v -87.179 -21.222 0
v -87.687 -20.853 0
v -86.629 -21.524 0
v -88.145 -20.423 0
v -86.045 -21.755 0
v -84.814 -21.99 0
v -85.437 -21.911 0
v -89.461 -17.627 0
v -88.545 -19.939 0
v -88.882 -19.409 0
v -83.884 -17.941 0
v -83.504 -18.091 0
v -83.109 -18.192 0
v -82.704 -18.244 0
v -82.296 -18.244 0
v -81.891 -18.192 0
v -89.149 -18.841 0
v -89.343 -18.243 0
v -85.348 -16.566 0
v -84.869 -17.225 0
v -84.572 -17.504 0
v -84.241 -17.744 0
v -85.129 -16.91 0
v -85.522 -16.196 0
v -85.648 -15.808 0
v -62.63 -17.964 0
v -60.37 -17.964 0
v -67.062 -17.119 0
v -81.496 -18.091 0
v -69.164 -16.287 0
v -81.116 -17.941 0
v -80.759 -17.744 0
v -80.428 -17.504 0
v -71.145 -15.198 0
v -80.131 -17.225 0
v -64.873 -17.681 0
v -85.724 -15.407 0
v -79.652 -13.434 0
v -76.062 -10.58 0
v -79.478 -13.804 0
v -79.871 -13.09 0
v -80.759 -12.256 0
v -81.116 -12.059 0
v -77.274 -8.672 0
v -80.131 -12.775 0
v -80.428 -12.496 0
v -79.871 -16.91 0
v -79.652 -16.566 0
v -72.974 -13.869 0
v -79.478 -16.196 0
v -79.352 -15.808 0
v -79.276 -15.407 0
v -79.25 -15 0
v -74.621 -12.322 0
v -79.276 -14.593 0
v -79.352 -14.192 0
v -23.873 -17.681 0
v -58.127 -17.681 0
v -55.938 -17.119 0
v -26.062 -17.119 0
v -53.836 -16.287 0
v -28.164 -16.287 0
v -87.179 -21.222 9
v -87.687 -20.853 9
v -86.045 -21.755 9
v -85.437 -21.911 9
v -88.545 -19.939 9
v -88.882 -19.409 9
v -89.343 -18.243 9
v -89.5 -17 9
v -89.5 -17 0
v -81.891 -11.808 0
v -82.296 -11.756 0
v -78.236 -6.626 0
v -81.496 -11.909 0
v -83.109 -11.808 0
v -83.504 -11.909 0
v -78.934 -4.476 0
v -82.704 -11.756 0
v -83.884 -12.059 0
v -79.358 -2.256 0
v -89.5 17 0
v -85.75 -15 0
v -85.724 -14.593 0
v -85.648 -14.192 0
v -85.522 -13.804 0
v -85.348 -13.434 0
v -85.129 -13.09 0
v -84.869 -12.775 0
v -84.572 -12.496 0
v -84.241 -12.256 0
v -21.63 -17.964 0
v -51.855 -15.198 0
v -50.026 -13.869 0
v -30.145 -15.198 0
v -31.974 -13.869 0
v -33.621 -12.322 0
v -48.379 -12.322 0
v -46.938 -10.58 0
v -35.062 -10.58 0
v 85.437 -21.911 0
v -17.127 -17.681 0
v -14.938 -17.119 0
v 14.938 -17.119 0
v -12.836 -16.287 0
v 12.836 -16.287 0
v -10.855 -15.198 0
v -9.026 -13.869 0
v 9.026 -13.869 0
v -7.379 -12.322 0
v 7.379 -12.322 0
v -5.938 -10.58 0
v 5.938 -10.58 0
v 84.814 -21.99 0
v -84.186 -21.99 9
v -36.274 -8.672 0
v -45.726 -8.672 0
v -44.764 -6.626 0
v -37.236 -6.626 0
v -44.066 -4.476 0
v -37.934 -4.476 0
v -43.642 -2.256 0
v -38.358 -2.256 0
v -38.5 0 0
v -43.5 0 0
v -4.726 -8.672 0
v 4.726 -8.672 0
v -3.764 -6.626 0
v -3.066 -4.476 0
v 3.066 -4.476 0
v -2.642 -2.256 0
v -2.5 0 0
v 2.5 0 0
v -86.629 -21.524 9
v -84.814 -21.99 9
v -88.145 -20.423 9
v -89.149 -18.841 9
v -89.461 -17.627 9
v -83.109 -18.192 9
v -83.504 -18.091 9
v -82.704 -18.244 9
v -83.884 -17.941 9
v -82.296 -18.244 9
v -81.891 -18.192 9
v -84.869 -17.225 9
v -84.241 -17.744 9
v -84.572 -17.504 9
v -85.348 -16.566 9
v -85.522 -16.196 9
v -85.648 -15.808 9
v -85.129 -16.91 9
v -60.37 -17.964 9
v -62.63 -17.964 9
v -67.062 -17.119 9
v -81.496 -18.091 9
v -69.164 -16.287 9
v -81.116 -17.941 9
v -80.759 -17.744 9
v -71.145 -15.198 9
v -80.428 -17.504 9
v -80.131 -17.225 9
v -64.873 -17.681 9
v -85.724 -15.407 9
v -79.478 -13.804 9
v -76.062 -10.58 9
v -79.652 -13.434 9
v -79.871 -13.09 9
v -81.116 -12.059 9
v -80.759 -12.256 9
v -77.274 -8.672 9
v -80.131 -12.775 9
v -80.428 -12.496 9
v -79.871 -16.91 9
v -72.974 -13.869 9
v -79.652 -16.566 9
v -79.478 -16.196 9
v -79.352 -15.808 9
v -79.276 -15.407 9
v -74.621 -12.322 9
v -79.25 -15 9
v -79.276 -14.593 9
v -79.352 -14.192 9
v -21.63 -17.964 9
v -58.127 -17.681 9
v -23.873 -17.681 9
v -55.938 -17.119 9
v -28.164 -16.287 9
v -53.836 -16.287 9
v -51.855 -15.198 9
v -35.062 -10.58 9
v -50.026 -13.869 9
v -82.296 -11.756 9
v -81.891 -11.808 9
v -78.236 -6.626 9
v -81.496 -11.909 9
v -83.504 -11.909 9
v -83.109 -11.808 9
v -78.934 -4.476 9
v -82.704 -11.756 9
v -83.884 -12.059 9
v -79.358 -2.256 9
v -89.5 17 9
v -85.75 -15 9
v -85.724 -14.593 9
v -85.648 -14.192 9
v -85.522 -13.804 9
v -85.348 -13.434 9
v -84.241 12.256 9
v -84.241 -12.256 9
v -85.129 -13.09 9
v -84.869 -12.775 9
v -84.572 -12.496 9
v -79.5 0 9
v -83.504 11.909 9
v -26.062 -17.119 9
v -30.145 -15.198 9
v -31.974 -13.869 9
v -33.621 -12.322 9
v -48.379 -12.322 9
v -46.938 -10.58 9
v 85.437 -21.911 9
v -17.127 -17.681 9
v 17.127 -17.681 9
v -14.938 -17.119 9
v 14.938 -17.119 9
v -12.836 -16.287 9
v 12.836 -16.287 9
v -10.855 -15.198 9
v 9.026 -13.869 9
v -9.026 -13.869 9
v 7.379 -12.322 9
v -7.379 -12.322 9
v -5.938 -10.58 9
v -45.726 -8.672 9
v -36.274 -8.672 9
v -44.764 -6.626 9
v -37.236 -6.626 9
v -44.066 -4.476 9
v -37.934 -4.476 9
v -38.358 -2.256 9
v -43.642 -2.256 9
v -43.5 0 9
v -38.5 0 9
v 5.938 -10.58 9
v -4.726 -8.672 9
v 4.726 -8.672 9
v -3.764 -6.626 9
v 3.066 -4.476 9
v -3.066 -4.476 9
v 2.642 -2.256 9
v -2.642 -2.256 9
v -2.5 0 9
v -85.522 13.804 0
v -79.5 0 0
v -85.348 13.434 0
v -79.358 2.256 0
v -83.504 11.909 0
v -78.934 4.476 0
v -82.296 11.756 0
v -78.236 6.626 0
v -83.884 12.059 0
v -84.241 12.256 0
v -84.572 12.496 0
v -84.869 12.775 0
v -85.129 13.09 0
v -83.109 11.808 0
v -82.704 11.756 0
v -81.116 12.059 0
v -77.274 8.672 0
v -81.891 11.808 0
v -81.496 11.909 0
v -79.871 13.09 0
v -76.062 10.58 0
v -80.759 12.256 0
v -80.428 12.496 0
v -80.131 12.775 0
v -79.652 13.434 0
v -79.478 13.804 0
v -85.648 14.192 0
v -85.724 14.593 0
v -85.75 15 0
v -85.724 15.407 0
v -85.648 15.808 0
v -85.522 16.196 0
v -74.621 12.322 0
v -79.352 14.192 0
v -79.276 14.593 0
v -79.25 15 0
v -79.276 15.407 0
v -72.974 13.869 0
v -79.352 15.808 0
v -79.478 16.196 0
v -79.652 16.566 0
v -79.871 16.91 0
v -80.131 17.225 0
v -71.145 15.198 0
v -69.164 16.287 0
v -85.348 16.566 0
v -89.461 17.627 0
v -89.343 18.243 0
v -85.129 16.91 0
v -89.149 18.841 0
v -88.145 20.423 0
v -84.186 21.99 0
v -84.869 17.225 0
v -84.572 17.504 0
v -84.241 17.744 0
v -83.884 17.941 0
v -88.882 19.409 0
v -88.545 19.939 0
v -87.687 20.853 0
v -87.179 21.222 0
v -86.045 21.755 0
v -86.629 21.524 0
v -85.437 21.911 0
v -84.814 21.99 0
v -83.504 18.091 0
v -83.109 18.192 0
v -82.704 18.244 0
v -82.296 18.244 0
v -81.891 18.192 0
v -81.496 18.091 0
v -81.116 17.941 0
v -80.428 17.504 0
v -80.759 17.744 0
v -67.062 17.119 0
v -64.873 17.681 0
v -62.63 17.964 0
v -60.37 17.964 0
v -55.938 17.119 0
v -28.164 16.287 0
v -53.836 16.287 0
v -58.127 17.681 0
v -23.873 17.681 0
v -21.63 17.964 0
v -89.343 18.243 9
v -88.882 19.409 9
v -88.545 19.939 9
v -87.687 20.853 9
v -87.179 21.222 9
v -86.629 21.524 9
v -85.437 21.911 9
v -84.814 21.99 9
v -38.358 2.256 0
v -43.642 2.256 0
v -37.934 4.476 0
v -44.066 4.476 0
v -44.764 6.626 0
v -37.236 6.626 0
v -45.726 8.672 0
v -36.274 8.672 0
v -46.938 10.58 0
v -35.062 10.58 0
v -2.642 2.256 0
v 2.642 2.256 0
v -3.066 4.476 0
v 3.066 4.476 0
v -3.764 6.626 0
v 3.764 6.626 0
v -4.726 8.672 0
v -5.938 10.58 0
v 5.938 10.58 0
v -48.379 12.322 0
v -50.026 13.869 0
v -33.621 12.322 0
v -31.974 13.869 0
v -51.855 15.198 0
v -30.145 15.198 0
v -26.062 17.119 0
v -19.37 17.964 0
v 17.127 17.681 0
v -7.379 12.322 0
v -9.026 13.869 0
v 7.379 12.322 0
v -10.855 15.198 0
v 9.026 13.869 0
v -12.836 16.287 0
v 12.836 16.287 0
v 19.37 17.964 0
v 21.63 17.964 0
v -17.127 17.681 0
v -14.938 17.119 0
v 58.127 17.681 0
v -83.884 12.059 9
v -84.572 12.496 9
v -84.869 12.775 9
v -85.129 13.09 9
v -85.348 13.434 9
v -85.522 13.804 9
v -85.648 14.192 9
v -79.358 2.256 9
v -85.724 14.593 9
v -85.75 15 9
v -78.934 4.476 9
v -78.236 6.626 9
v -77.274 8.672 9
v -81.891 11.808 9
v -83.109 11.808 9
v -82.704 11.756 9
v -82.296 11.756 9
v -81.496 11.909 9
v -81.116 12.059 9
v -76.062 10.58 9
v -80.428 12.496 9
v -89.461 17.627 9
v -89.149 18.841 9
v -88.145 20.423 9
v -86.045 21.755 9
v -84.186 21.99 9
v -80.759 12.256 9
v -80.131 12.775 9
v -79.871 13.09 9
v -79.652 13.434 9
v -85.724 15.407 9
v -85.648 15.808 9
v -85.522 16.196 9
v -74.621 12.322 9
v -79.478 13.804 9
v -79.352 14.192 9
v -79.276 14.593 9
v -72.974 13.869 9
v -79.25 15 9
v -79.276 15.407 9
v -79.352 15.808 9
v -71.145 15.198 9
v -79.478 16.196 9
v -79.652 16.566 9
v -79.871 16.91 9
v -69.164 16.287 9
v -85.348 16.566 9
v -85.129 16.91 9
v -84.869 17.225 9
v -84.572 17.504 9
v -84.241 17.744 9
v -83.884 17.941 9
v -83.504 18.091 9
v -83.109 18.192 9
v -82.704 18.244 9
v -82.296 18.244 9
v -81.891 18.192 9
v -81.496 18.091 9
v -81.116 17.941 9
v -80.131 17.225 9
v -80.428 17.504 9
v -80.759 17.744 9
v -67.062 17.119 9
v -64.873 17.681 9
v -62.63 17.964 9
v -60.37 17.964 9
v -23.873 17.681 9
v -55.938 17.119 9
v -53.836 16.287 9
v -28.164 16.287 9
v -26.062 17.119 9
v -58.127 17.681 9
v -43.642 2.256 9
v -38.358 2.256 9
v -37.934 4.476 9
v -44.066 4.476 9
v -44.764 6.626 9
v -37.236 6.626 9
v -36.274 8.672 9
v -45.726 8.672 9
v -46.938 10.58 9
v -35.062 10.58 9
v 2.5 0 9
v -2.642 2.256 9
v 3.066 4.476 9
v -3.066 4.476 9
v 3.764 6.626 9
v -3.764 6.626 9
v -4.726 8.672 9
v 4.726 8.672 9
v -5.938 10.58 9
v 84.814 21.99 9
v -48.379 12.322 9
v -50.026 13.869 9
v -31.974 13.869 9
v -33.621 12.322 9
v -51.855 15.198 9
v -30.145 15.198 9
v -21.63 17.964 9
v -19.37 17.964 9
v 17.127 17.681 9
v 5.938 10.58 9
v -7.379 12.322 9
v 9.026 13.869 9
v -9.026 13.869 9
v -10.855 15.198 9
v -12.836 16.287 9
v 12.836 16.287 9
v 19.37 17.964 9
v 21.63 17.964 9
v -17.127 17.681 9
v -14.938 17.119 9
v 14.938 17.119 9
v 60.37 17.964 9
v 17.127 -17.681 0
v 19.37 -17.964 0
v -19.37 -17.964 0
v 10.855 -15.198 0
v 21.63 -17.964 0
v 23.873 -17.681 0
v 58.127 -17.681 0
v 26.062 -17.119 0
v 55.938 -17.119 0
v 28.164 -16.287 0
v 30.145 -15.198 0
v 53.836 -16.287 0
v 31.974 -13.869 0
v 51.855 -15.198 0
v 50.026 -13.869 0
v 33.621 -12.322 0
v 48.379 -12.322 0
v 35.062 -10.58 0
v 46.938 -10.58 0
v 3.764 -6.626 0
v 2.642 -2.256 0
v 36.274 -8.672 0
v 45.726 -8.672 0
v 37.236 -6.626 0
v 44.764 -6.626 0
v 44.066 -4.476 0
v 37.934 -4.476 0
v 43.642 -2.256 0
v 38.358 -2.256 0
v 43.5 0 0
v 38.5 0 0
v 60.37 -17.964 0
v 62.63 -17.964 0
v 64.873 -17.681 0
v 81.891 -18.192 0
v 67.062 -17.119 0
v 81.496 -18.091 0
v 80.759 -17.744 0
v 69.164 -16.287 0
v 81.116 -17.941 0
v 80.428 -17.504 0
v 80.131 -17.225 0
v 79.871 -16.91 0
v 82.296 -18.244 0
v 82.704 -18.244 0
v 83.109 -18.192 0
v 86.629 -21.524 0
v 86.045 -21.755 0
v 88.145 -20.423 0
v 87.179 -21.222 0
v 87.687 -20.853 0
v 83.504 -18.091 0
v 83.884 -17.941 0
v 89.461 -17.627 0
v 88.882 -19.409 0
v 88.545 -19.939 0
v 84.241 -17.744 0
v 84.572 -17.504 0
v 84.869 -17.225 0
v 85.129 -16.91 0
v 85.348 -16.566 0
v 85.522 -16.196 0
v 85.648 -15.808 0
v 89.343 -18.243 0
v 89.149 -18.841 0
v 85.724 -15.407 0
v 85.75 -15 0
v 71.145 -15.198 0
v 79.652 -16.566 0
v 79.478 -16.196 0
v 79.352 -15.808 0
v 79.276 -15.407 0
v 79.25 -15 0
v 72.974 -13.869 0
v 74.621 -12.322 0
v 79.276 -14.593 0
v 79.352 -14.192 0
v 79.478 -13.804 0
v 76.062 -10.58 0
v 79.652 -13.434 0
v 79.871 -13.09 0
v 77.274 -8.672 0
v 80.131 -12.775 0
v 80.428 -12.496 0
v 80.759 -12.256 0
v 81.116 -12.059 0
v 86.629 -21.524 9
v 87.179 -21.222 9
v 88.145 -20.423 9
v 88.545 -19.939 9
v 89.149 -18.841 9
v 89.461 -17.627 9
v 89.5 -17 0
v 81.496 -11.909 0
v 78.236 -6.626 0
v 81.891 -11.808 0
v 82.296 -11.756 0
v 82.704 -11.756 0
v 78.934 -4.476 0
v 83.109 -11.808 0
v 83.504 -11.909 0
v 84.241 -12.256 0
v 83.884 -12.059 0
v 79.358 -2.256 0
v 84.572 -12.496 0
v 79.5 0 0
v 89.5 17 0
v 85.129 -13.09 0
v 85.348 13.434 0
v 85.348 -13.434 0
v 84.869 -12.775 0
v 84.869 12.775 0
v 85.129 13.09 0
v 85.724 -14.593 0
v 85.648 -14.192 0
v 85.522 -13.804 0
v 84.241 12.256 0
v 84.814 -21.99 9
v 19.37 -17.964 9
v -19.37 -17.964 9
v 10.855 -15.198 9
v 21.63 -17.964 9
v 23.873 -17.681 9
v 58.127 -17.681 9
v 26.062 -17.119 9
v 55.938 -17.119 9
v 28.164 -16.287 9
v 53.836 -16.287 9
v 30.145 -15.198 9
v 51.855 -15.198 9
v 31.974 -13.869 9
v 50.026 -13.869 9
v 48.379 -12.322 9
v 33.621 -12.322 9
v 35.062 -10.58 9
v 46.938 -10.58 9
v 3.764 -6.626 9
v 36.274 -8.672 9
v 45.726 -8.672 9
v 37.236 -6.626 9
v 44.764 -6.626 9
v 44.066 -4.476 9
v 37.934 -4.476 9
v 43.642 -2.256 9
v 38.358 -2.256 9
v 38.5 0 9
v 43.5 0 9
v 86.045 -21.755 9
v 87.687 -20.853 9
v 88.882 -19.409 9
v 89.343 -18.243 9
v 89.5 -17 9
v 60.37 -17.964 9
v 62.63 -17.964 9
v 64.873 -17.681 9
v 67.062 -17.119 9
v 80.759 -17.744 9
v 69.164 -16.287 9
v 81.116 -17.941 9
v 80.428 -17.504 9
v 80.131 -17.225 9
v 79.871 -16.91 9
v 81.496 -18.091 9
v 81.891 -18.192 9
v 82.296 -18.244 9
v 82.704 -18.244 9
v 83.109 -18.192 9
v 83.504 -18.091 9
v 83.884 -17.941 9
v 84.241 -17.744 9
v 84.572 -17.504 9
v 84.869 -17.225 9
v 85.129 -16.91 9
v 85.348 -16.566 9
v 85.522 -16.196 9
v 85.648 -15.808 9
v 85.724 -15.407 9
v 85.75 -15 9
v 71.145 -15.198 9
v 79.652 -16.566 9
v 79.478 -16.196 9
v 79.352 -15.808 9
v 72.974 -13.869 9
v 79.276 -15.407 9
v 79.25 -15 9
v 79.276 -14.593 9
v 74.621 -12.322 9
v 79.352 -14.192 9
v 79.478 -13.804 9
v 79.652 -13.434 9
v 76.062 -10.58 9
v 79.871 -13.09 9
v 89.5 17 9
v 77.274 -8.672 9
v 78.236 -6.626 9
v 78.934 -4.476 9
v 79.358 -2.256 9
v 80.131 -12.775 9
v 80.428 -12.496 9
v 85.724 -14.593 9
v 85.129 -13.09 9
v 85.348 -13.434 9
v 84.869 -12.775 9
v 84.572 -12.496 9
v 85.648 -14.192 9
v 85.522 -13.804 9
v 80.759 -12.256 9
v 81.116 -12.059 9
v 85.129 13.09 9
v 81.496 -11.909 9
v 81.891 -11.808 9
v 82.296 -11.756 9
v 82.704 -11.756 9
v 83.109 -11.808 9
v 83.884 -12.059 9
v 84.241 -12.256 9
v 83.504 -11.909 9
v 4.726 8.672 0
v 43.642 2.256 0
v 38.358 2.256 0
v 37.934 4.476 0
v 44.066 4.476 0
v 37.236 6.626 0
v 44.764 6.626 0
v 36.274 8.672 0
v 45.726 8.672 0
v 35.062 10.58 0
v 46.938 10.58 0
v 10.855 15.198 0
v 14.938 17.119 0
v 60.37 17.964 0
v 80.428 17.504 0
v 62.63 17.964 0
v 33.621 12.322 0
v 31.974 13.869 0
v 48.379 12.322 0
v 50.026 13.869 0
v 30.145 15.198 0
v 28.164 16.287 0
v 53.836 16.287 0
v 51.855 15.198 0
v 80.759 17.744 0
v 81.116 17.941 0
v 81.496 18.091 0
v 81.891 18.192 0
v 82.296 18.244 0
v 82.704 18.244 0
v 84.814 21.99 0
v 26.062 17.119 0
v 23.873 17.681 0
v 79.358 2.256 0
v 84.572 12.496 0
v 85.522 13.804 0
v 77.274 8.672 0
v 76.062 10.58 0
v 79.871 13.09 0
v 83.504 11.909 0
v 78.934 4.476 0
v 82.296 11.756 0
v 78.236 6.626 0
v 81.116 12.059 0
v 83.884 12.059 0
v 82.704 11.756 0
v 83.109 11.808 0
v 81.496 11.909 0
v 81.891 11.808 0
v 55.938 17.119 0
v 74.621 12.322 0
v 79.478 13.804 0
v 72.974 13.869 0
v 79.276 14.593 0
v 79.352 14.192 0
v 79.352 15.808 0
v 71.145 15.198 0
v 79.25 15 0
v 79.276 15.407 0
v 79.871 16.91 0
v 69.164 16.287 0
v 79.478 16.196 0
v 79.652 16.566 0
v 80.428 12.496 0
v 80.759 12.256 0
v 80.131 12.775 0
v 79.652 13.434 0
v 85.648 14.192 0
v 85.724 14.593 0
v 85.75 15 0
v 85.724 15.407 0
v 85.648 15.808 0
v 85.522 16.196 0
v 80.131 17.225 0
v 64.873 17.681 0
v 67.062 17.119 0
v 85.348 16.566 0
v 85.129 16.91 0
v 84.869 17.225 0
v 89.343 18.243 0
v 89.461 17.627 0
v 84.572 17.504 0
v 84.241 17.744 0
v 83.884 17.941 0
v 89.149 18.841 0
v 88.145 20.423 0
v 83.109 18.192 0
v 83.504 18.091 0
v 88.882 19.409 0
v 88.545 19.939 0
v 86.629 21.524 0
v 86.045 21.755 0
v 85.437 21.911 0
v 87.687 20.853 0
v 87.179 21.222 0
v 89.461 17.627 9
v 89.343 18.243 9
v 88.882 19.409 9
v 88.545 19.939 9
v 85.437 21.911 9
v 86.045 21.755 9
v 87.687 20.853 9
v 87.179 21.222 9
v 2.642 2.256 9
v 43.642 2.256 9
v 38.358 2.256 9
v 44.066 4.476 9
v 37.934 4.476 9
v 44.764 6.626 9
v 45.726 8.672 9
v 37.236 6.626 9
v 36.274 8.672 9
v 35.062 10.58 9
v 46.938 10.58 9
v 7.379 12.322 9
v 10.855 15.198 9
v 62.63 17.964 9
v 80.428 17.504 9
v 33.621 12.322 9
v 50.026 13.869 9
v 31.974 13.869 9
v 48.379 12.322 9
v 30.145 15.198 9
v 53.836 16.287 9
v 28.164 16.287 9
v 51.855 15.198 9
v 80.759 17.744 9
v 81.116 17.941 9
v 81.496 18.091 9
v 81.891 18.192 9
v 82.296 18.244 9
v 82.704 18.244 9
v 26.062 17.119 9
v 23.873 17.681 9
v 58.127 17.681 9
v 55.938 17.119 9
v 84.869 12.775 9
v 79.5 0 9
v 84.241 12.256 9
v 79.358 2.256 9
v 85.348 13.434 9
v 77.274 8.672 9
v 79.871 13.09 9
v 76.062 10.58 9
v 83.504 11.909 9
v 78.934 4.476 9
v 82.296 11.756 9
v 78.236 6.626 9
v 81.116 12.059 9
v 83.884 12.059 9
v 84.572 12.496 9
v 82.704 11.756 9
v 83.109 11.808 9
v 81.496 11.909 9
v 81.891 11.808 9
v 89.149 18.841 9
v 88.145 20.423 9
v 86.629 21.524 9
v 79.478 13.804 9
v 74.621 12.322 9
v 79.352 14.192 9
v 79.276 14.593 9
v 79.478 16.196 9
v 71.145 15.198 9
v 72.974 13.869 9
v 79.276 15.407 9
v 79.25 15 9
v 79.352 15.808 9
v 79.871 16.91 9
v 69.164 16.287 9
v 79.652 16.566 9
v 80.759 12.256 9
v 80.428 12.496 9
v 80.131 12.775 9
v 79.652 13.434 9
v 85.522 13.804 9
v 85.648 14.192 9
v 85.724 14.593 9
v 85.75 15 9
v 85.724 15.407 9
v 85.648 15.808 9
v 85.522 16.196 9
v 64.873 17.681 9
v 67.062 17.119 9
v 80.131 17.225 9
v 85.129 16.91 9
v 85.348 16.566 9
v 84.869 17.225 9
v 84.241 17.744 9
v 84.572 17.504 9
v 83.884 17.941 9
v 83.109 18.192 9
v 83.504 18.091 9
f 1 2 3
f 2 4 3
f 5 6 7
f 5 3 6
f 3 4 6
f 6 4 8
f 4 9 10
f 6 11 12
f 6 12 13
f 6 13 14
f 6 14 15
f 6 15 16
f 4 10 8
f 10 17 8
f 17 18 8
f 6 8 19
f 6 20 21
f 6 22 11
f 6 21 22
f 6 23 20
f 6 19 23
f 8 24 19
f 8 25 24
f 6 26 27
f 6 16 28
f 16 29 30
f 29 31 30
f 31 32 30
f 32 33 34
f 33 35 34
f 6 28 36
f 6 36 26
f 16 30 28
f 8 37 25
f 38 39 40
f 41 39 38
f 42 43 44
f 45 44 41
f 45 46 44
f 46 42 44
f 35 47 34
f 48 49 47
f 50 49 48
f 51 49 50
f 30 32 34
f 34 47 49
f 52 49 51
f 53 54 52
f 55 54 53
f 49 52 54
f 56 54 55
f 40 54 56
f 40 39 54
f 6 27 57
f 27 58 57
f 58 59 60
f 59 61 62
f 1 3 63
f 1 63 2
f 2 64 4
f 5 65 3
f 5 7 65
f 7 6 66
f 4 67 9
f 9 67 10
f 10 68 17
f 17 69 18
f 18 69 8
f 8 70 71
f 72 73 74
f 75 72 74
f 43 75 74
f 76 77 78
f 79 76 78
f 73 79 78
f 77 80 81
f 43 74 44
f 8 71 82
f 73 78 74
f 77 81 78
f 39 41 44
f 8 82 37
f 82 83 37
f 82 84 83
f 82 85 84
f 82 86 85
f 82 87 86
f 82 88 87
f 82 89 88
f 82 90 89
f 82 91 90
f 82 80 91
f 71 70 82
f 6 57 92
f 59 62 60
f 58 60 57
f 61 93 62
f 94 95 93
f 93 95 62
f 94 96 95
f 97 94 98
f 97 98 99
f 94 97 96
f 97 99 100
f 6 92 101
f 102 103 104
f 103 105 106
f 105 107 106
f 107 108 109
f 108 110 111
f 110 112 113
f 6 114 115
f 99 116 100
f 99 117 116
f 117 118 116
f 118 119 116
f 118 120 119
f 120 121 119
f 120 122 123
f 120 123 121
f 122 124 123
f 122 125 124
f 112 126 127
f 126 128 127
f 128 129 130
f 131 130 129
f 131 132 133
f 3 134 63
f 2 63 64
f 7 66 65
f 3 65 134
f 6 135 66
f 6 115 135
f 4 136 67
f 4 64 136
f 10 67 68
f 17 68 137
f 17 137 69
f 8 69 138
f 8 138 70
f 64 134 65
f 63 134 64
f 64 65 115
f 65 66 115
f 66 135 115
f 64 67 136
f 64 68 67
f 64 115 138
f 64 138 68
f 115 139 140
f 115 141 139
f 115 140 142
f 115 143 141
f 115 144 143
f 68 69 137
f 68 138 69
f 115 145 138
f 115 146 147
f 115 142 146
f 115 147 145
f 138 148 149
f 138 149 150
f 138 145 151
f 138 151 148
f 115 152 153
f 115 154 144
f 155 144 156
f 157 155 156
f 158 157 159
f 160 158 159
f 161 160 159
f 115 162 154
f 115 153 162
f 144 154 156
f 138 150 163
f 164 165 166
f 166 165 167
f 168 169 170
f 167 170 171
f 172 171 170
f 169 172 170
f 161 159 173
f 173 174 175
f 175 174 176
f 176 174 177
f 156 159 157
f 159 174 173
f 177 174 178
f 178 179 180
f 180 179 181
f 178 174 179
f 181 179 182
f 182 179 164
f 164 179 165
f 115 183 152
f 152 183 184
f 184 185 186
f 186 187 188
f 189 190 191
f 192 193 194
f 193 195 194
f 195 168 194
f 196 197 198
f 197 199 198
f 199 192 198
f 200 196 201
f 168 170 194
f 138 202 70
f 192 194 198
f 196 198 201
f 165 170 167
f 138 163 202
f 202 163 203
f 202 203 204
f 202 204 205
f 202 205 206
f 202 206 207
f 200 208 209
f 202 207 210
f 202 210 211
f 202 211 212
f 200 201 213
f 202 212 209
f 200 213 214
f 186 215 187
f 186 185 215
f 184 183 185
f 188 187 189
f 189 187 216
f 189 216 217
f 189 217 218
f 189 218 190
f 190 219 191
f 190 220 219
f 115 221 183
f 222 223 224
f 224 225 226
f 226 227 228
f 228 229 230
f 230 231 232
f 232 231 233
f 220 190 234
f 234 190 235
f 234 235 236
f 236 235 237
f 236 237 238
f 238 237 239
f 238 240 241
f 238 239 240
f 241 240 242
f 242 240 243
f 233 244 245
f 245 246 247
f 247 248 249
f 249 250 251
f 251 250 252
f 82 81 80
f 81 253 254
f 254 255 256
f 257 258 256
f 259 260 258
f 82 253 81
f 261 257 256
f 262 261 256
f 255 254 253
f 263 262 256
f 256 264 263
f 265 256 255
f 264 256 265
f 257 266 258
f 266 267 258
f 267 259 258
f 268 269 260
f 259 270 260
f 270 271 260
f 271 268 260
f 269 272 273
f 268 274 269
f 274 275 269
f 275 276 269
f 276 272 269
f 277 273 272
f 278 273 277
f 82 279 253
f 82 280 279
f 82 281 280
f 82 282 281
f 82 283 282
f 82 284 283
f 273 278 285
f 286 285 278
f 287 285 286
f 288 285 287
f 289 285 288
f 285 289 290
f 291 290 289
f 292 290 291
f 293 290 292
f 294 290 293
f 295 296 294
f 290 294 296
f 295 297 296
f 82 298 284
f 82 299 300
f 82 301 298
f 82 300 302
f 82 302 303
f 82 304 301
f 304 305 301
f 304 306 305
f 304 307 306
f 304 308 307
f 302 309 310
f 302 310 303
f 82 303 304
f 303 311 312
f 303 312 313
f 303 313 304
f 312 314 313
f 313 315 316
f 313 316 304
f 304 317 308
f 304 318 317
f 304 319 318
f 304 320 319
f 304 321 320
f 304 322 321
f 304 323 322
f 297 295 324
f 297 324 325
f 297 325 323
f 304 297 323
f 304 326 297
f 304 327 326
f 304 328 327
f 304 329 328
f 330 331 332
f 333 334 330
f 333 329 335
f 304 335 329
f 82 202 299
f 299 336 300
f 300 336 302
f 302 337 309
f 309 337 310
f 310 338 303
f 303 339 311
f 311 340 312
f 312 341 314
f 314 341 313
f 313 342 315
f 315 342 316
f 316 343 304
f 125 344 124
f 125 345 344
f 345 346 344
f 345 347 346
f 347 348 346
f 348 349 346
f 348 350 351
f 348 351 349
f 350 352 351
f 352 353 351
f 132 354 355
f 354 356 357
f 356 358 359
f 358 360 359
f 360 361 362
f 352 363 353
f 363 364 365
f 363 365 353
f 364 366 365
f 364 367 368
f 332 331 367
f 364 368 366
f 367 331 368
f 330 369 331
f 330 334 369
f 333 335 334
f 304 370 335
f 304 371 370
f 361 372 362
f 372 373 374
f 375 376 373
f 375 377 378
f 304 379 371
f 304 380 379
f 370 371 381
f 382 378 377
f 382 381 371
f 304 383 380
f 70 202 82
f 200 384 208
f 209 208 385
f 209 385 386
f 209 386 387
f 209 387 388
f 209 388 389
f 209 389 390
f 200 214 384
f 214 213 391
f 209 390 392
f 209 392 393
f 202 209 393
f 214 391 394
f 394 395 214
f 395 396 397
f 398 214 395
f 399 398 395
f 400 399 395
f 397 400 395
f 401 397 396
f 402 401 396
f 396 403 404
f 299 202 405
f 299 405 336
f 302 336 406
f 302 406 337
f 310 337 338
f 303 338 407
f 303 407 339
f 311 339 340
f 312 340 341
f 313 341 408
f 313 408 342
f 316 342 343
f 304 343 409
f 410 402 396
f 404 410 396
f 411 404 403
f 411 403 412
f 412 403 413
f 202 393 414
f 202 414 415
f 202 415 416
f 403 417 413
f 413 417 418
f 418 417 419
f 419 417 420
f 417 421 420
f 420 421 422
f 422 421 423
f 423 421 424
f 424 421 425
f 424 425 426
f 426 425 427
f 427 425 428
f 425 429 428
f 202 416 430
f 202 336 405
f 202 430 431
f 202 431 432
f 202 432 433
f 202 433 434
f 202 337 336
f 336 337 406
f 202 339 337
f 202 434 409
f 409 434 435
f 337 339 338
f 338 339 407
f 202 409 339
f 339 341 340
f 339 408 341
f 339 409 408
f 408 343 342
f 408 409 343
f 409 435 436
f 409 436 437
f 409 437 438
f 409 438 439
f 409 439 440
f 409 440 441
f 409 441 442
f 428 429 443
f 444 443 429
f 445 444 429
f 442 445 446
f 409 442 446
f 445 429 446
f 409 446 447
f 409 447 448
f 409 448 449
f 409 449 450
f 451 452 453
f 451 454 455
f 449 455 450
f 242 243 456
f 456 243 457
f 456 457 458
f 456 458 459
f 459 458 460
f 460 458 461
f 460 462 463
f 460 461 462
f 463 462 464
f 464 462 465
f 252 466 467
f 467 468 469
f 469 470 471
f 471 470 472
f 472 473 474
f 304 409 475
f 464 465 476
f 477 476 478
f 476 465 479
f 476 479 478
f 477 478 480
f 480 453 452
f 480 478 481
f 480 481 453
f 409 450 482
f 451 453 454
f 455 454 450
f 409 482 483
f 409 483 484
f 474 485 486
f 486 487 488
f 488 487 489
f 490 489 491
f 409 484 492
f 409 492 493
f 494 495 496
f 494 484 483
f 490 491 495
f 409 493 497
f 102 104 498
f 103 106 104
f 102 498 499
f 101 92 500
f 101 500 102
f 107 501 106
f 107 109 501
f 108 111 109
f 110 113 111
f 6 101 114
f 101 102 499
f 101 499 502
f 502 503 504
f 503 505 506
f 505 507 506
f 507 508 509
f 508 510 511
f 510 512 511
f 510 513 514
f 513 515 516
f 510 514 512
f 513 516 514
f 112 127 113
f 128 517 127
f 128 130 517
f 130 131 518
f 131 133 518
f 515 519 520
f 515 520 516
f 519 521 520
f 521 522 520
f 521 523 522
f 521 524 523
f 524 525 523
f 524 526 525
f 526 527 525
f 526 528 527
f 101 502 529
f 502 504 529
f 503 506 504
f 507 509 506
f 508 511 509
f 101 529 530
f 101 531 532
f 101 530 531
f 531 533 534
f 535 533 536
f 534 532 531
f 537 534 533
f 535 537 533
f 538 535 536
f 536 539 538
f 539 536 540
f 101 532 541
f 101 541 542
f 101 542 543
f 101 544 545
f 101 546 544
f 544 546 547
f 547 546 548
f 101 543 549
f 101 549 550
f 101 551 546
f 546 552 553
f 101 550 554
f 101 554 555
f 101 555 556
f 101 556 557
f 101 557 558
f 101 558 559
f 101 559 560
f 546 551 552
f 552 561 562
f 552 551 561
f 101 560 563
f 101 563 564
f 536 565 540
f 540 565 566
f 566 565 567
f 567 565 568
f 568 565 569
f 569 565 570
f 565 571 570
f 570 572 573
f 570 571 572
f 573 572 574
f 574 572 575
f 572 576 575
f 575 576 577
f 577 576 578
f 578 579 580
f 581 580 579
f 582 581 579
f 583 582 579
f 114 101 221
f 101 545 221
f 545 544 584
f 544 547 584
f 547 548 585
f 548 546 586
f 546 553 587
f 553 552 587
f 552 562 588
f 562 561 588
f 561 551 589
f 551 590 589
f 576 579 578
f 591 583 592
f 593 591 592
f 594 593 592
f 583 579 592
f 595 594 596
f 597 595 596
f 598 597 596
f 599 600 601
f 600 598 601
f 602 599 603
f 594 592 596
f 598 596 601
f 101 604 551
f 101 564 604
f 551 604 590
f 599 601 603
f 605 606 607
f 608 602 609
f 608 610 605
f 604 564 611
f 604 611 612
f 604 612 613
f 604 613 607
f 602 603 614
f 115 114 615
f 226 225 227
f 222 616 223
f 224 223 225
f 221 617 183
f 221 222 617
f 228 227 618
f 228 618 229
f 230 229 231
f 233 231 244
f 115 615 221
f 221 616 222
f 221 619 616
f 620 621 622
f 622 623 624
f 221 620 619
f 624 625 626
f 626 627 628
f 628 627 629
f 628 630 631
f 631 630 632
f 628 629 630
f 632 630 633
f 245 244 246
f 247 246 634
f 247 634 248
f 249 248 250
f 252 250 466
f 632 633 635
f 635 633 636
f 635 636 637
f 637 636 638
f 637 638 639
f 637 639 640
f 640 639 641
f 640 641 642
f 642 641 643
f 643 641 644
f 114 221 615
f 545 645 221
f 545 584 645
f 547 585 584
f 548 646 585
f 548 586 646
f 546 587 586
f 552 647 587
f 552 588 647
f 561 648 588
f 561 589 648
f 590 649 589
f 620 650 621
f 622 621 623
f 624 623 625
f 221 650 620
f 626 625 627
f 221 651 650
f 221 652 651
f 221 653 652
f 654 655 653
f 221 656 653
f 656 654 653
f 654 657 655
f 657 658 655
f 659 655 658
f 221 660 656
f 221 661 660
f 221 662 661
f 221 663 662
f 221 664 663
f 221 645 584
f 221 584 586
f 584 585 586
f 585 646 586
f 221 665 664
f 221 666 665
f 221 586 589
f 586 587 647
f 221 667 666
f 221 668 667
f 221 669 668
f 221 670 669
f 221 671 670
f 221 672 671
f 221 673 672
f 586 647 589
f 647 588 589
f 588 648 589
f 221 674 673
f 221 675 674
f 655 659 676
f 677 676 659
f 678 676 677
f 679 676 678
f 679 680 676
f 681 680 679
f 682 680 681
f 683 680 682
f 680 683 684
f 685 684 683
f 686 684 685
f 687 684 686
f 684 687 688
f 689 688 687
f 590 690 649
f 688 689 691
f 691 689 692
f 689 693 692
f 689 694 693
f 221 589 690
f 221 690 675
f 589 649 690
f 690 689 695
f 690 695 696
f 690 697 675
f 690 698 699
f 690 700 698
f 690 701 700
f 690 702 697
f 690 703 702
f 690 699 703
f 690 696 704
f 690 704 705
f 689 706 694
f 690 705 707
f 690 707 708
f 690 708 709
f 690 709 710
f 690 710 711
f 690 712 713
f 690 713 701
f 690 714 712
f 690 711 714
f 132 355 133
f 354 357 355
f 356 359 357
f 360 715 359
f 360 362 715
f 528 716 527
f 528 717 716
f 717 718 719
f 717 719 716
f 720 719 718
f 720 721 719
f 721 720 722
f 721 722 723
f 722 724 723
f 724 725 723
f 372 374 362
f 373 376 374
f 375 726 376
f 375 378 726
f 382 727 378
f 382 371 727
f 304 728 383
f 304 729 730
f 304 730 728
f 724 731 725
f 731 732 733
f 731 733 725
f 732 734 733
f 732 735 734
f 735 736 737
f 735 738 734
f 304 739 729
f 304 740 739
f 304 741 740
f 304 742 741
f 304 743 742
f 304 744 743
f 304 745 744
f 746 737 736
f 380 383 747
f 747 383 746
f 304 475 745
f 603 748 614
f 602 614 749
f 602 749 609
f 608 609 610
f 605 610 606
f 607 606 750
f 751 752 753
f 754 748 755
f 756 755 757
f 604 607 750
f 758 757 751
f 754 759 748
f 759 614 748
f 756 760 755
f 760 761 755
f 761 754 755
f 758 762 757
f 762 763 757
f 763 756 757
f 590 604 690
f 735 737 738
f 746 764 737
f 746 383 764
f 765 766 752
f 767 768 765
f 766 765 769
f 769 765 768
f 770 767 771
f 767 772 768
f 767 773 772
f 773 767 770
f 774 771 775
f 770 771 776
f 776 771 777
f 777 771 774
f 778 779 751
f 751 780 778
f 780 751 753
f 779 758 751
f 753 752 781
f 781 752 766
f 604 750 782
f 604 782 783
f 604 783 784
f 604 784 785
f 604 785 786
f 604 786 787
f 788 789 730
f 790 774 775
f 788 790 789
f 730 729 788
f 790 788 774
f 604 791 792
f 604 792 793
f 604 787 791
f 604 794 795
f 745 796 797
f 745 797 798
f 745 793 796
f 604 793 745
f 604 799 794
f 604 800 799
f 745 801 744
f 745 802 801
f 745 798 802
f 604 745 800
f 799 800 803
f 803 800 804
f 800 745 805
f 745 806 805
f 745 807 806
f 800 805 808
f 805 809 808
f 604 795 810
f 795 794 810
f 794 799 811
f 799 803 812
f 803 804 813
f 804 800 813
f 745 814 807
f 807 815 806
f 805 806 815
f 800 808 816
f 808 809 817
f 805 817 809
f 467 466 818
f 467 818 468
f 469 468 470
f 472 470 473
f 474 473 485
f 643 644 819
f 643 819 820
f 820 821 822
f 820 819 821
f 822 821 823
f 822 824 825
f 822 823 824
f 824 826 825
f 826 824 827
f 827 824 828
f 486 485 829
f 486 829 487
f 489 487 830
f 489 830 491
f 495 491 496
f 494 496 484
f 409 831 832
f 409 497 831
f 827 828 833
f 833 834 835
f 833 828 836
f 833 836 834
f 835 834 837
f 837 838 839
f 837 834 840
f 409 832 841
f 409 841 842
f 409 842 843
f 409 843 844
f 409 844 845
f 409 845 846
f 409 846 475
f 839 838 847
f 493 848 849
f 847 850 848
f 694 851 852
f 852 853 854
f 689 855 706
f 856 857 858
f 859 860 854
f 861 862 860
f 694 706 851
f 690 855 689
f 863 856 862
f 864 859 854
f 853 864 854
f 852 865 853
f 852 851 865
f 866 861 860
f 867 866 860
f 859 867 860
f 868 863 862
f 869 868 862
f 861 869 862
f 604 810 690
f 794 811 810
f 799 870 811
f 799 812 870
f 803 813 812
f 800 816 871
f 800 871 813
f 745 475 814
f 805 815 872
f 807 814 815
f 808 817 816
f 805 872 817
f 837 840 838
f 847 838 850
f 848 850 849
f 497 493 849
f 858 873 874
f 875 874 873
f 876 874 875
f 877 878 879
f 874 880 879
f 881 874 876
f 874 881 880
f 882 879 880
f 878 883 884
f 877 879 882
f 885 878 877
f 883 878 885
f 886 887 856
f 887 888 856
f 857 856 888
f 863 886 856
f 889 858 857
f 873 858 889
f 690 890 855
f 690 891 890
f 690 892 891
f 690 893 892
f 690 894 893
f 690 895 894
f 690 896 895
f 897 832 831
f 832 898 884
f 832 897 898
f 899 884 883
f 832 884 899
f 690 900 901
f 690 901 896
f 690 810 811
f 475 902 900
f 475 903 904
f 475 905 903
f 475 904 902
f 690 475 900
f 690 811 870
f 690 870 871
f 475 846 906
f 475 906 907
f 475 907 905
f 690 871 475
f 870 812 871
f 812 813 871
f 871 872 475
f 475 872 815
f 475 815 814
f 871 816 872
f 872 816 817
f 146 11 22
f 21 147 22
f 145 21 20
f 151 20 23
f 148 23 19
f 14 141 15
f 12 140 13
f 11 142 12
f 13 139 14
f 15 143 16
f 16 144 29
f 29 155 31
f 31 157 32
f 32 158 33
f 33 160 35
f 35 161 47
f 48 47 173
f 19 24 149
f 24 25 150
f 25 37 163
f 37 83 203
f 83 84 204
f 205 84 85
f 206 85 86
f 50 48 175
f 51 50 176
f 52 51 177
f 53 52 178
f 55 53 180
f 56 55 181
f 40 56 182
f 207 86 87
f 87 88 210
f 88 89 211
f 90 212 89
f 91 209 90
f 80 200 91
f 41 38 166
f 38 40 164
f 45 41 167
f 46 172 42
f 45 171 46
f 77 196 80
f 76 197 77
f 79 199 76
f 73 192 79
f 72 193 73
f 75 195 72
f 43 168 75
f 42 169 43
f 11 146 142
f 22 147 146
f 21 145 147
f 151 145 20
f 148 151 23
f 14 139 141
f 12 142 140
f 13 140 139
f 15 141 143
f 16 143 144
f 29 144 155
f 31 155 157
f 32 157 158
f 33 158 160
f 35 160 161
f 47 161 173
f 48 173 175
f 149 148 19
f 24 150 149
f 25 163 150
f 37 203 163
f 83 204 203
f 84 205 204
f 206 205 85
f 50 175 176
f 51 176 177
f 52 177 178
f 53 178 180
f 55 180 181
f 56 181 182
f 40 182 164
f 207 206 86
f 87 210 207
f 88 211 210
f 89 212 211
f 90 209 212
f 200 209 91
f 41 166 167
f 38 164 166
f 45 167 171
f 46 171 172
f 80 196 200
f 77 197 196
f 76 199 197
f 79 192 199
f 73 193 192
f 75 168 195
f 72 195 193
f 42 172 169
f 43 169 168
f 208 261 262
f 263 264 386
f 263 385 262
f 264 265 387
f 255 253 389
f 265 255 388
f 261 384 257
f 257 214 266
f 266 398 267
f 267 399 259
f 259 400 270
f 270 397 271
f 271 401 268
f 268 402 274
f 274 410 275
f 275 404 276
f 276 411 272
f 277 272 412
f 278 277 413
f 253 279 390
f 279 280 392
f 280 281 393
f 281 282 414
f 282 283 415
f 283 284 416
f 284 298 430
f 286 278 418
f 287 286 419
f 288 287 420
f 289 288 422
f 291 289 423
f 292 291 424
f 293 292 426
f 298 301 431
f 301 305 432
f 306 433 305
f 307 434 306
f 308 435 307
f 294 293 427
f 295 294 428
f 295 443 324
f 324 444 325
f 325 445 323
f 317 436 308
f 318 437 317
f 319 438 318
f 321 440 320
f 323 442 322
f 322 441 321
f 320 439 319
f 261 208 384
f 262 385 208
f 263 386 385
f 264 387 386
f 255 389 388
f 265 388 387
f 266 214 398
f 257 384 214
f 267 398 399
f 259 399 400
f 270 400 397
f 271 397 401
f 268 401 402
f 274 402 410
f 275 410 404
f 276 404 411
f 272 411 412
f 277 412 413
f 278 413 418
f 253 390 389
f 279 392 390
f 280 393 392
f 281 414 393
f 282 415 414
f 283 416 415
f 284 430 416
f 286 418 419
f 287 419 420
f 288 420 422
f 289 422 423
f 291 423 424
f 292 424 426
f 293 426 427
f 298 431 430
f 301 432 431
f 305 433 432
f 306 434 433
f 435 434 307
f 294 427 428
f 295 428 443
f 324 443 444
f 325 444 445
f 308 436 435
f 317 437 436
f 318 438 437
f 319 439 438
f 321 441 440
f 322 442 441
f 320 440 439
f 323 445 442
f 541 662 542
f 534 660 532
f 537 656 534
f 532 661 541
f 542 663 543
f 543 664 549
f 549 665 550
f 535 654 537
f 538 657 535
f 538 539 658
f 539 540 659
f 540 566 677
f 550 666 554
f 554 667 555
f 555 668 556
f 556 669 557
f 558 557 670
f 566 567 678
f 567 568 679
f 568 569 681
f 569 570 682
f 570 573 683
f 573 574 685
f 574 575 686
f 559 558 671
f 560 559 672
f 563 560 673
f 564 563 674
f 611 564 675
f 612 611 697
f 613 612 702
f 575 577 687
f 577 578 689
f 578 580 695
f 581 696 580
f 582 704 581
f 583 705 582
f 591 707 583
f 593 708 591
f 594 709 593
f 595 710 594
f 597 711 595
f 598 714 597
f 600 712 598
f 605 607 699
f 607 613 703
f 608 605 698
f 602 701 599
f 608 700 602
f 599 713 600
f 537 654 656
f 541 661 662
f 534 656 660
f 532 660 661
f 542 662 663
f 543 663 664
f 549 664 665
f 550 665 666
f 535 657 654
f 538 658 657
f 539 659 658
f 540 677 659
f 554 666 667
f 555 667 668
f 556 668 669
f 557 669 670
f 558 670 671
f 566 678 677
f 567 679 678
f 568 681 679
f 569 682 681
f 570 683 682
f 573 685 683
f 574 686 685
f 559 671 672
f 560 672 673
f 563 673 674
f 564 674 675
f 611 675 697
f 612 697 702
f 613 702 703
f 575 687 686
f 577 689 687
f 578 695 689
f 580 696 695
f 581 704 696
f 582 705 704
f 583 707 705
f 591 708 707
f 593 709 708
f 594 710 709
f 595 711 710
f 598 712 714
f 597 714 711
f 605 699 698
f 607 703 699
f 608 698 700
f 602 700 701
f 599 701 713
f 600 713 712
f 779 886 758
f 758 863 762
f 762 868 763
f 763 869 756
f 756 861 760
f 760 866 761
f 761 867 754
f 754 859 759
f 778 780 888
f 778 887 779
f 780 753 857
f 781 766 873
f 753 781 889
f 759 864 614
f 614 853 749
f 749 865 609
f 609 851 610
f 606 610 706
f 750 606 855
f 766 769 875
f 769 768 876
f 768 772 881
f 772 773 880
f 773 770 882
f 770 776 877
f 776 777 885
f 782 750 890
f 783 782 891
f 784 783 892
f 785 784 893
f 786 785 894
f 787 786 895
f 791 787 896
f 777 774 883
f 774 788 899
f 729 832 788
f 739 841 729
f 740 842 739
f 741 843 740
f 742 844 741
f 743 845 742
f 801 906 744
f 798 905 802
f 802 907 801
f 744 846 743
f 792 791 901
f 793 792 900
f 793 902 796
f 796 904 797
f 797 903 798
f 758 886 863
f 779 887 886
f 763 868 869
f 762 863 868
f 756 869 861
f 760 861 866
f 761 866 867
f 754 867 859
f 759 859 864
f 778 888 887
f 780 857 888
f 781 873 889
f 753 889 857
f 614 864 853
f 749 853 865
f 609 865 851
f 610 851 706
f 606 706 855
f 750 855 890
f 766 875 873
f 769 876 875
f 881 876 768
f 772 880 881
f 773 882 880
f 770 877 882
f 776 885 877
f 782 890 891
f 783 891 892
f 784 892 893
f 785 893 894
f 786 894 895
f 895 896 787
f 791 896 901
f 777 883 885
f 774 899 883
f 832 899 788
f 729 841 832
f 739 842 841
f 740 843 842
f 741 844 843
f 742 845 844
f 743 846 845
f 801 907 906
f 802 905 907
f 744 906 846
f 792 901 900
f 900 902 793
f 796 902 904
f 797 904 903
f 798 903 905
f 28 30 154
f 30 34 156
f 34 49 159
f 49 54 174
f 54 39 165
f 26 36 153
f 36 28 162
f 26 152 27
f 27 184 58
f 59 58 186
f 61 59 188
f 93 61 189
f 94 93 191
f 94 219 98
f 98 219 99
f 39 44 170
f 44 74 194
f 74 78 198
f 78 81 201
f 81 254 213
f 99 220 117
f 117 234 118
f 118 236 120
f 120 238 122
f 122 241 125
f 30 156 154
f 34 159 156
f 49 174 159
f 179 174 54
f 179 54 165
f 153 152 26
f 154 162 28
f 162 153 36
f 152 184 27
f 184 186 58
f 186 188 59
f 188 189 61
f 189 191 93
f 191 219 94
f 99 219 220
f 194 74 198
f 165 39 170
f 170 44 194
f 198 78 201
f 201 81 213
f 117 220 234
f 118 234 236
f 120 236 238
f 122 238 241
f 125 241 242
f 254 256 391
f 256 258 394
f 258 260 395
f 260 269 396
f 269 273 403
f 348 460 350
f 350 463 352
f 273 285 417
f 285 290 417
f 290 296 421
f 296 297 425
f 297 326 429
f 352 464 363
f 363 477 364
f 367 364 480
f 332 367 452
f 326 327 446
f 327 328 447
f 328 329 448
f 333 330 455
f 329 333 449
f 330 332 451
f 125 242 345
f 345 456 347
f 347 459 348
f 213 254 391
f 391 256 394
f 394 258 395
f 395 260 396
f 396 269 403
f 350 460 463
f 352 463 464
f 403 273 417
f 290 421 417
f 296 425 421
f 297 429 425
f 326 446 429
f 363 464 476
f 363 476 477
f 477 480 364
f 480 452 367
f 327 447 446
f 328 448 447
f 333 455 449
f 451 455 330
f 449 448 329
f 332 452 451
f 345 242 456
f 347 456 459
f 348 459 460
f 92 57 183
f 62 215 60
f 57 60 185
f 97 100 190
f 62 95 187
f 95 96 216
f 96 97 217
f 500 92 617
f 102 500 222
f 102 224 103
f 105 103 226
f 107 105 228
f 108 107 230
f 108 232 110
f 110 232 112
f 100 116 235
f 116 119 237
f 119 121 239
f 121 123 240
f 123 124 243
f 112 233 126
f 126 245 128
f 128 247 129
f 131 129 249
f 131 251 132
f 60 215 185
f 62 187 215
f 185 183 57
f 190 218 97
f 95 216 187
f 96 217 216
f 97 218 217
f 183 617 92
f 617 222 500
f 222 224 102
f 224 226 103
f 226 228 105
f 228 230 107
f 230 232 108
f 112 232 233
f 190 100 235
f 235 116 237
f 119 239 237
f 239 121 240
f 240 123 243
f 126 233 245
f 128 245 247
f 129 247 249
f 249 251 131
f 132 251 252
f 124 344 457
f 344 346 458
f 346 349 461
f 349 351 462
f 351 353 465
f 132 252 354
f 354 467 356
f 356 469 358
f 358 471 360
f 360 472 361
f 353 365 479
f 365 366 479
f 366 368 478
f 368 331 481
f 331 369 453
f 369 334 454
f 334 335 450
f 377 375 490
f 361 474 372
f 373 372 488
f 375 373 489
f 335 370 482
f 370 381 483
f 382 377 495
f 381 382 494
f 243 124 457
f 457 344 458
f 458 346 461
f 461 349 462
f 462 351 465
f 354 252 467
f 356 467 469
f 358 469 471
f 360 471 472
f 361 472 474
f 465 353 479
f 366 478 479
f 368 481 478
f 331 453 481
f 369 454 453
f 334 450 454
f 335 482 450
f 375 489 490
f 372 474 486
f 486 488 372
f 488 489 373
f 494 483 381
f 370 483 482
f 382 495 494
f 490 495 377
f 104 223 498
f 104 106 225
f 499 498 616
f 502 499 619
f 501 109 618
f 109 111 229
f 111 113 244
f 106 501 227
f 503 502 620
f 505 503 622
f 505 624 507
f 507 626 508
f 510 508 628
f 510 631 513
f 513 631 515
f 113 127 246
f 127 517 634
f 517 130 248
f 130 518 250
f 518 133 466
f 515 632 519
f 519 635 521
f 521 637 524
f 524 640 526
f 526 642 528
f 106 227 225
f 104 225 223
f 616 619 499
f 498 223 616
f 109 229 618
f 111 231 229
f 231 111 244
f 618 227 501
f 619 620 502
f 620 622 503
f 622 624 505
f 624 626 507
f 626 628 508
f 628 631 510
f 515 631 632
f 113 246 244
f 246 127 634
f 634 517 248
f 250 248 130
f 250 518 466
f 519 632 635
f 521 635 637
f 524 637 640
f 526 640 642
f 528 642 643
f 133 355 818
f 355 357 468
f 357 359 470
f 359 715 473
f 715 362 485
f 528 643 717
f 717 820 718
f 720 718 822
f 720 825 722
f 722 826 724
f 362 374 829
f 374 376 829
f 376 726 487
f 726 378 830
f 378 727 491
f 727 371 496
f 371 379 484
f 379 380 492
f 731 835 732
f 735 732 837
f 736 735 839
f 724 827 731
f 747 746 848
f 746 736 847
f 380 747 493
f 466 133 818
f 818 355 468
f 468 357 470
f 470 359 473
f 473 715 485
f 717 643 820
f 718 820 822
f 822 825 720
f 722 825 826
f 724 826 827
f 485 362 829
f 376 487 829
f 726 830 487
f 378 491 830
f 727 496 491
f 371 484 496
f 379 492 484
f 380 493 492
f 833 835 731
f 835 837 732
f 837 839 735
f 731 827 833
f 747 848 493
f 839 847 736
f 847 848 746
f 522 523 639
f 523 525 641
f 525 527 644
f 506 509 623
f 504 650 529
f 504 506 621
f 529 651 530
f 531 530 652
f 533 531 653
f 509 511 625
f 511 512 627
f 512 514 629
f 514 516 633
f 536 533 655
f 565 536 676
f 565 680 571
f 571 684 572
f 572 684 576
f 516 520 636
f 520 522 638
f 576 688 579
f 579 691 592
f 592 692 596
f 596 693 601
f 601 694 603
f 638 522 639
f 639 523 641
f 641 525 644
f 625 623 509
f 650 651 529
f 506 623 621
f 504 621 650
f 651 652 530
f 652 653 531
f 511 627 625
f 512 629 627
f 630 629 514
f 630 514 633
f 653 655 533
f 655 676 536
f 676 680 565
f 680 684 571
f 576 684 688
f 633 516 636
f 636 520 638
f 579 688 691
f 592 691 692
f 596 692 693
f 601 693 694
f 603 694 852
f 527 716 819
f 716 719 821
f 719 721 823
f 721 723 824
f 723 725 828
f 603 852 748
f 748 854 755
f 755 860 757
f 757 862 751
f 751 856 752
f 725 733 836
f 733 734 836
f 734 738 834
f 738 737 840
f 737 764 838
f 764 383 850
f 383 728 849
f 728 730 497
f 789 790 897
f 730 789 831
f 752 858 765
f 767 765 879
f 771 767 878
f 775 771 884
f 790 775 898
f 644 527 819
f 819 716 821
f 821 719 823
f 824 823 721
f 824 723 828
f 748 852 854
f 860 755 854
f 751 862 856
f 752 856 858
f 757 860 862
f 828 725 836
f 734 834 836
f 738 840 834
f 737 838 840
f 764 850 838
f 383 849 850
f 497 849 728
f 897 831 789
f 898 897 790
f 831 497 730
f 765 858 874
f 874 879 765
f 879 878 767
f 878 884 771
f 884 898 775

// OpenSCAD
$fn = 50;

difference() {
	union() {
		hull() {
			translate(v = [-84.5, 17.0, 0]) {
				cylinder(h = 9, r = 5);
			}
			translate(v = [84.5, 17.0, 0]) {
				cylinder(h = 9, r = 5);
			}
			translate(v = [-84.5, -17.0, 0]) {
				cylinder(h = 9, r = 5);
			}
			translate(v = [84.5, -17.0, 0]) {
				cylinder(h = 9, r = 5);
			}
		}
	}
	union() {
		translate(v = [-82.5, -15.0, -100.0]) {
			cylinder(h = 200, r = 3.25);
		}
		translate(v = [-82.5, 15.0, -100.0]) {
			cylinder(h = 200, r = 3.25);
		}
		translate(v = [82.5, -15.0, -100.0]) {
			cylinder(h = 200, r = 3.25);
		}
		translate(v = [82.5, 15.0, -100.0]) {
			cylinder(h = 200, r = 3.25);
		}
		translate(v = [-82.5, -15.0, -100.0]) {
			cylinder(h = 200, r = 1.8);
		}
		translate(v = [-82.5, 15.0, -100.0]) {
			cylinder(h = 200, r = 1.8);
		}
		translate(v = [82.5, -15.0, -100.0]) {
			cylinder(h = 200, r = 1.8);
		}
		translate(v = [82.5, 15.0, -100.0]) {
			cylinder(h = 200, r = 1.8);
		}
		translate(v = [-61.5, 0, 0.0]) {
			cylinder(h = 9, r = 18.0);
		}
		translate(v = [-20.5, 0, 0.0]) {
			cylinder(h = 9, r = 18.0);
		}
		translate(v = [20.5, 0, 0.0]) {
			cylinder(h = 9, r = 18.0);
		}
		translate(v = [61.5, 0, 0.0]) {
			cylinder(h = 9, r = 18.0);
		}
	}
}
